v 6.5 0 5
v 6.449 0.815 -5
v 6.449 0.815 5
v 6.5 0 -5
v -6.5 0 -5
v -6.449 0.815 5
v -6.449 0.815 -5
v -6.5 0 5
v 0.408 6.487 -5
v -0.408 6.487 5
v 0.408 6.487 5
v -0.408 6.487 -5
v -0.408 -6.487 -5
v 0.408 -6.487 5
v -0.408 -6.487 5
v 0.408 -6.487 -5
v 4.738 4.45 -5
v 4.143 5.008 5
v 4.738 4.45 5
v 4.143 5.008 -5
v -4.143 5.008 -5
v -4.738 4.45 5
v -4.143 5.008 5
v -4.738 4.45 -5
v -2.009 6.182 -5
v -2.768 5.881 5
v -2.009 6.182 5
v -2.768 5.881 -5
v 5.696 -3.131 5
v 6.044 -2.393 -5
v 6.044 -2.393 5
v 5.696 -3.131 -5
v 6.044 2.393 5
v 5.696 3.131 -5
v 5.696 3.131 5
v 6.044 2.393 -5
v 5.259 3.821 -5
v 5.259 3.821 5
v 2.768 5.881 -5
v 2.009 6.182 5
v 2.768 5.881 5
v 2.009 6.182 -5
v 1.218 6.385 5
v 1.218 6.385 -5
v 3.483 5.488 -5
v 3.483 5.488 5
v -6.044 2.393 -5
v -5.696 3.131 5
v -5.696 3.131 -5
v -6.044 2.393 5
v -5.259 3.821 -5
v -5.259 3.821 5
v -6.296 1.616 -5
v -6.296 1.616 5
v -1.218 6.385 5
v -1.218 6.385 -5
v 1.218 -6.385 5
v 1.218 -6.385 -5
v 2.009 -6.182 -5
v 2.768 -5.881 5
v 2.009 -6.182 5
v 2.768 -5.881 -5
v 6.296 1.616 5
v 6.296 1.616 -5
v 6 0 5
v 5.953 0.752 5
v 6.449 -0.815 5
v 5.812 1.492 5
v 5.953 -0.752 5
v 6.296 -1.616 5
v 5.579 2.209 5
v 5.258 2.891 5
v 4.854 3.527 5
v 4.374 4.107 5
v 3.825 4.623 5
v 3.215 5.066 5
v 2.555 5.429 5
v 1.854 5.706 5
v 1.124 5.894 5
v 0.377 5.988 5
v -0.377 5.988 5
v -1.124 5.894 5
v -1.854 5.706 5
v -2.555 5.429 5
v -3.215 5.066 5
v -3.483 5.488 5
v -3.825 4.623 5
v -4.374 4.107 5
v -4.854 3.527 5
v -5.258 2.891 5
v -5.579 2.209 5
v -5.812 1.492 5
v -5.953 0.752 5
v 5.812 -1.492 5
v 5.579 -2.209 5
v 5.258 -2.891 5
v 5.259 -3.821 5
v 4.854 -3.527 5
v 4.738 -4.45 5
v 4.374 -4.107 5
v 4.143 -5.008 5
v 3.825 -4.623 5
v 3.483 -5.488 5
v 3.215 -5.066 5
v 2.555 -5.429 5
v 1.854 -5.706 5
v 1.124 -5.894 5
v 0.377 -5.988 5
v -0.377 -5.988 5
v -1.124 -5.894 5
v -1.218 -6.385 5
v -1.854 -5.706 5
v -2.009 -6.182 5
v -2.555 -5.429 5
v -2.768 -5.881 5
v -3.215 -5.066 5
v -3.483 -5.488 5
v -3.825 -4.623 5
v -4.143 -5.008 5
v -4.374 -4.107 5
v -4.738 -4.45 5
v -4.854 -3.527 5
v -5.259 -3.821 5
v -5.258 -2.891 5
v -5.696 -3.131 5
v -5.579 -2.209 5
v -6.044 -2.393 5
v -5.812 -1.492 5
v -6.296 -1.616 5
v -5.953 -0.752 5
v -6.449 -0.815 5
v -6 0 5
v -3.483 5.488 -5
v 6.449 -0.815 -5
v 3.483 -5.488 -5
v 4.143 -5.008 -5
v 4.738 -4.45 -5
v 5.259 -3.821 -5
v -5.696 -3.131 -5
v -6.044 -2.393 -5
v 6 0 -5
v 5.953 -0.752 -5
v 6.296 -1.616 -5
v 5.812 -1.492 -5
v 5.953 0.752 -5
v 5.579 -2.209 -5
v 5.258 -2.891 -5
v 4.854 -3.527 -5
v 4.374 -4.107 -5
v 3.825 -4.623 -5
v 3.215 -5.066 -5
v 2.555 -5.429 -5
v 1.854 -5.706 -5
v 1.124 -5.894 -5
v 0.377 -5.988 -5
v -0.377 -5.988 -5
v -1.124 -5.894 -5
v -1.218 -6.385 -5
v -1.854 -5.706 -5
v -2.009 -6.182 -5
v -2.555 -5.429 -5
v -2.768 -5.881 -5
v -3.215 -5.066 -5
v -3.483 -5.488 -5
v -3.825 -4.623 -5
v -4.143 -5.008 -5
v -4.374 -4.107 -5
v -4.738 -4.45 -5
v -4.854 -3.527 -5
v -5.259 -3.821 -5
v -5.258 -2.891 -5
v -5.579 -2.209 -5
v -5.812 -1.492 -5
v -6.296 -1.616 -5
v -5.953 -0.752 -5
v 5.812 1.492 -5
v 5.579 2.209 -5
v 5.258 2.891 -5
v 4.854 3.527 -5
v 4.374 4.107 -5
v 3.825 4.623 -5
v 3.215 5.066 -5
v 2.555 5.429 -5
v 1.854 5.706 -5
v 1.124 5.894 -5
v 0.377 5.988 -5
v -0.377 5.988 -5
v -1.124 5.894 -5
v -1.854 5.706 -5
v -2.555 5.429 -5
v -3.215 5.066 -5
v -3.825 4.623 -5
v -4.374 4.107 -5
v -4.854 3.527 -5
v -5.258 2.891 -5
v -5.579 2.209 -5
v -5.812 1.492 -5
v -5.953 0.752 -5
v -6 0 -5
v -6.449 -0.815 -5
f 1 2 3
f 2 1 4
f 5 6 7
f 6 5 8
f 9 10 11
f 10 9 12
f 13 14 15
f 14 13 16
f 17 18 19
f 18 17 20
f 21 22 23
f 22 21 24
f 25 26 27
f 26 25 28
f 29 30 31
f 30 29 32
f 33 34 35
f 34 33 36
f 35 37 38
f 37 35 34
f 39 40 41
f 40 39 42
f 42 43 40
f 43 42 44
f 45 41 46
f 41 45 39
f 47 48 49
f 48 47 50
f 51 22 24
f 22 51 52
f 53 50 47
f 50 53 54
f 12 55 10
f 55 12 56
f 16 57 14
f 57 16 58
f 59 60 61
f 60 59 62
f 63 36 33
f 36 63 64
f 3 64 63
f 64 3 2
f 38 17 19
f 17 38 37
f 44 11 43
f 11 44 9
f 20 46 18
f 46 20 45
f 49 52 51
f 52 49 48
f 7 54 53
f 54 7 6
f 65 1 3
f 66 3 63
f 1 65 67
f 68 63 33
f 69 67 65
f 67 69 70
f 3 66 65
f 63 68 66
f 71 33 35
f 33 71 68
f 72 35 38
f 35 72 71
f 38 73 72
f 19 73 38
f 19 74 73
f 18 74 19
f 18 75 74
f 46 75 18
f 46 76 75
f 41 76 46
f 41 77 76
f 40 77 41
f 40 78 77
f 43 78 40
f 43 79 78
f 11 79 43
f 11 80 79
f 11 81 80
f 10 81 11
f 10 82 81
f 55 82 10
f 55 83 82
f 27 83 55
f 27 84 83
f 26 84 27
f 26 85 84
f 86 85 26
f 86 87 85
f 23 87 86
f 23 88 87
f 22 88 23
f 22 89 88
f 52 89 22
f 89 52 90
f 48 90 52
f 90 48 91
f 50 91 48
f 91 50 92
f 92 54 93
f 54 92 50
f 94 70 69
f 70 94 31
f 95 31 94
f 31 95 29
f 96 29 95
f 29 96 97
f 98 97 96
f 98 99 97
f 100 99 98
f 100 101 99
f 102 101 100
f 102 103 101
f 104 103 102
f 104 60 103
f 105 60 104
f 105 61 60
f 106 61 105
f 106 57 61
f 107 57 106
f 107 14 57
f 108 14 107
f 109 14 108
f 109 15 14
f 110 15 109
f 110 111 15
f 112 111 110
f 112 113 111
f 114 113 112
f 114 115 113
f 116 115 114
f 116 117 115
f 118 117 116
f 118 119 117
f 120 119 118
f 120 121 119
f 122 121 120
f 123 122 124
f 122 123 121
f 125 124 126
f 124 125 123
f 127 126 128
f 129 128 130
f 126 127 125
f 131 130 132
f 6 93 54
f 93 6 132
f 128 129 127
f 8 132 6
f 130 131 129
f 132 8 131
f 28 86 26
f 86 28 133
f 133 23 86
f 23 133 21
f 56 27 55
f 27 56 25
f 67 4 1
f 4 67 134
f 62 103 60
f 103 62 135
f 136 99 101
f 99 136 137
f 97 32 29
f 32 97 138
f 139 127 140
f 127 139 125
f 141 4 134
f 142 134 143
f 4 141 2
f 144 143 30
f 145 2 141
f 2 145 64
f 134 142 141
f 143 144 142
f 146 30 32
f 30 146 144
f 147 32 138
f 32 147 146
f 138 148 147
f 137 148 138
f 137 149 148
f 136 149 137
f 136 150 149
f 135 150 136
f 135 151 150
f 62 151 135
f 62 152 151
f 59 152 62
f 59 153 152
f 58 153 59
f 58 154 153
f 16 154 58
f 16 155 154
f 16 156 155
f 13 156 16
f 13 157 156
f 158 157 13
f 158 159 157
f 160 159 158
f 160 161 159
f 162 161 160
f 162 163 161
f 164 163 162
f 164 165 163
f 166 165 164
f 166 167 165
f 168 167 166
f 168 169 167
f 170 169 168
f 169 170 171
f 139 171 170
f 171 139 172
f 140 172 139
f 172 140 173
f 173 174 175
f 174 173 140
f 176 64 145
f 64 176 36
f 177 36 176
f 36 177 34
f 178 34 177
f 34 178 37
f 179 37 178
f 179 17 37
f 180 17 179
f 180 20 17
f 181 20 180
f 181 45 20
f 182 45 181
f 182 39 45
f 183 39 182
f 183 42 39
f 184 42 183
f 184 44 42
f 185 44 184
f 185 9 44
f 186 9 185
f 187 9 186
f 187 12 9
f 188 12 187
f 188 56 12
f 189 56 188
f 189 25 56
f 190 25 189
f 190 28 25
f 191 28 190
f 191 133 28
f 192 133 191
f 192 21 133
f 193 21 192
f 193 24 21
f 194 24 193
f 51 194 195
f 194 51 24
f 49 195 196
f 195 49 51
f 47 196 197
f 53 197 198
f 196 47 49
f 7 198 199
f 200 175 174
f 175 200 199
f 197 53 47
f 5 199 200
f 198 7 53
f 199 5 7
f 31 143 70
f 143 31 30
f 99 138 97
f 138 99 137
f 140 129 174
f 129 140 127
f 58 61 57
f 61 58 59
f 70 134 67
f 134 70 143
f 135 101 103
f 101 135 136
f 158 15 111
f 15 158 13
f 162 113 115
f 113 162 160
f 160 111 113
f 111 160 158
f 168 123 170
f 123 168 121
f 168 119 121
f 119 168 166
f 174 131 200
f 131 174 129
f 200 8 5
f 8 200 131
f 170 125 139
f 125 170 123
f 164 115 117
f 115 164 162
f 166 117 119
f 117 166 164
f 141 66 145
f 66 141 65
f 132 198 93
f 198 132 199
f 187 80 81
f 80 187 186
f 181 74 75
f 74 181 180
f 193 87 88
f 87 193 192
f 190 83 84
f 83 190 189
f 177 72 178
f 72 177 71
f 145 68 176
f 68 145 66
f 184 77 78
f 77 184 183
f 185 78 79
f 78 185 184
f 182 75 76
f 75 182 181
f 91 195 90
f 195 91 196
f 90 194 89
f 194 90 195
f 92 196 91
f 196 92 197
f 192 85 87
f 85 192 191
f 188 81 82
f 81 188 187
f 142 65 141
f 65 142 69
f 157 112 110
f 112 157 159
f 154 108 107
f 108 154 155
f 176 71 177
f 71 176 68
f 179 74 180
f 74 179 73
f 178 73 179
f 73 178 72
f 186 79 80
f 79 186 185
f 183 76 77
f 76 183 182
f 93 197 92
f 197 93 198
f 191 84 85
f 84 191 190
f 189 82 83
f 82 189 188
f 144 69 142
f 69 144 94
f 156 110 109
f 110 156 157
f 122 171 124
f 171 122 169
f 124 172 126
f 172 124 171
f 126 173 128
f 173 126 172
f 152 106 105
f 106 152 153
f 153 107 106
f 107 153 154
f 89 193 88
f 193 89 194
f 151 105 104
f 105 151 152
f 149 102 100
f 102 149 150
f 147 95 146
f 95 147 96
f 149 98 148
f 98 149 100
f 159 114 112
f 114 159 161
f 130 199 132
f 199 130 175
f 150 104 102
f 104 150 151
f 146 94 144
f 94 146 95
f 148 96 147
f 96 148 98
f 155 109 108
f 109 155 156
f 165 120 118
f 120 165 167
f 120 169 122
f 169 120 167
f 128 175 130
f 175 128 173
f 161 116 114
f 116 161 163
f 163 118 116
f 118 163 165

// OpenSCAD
$fn = 50;


difference() {
	union() {
		translate(v = [0, 0, -5.0000000000]) {
			cylinder(h = 10, r = 6.5000000000);
		}
	}
	union() {
		translate(v = [0, 0, -100.0000000000]) {
			cylinder(h = 200, r = 6);
		}
	}
}
